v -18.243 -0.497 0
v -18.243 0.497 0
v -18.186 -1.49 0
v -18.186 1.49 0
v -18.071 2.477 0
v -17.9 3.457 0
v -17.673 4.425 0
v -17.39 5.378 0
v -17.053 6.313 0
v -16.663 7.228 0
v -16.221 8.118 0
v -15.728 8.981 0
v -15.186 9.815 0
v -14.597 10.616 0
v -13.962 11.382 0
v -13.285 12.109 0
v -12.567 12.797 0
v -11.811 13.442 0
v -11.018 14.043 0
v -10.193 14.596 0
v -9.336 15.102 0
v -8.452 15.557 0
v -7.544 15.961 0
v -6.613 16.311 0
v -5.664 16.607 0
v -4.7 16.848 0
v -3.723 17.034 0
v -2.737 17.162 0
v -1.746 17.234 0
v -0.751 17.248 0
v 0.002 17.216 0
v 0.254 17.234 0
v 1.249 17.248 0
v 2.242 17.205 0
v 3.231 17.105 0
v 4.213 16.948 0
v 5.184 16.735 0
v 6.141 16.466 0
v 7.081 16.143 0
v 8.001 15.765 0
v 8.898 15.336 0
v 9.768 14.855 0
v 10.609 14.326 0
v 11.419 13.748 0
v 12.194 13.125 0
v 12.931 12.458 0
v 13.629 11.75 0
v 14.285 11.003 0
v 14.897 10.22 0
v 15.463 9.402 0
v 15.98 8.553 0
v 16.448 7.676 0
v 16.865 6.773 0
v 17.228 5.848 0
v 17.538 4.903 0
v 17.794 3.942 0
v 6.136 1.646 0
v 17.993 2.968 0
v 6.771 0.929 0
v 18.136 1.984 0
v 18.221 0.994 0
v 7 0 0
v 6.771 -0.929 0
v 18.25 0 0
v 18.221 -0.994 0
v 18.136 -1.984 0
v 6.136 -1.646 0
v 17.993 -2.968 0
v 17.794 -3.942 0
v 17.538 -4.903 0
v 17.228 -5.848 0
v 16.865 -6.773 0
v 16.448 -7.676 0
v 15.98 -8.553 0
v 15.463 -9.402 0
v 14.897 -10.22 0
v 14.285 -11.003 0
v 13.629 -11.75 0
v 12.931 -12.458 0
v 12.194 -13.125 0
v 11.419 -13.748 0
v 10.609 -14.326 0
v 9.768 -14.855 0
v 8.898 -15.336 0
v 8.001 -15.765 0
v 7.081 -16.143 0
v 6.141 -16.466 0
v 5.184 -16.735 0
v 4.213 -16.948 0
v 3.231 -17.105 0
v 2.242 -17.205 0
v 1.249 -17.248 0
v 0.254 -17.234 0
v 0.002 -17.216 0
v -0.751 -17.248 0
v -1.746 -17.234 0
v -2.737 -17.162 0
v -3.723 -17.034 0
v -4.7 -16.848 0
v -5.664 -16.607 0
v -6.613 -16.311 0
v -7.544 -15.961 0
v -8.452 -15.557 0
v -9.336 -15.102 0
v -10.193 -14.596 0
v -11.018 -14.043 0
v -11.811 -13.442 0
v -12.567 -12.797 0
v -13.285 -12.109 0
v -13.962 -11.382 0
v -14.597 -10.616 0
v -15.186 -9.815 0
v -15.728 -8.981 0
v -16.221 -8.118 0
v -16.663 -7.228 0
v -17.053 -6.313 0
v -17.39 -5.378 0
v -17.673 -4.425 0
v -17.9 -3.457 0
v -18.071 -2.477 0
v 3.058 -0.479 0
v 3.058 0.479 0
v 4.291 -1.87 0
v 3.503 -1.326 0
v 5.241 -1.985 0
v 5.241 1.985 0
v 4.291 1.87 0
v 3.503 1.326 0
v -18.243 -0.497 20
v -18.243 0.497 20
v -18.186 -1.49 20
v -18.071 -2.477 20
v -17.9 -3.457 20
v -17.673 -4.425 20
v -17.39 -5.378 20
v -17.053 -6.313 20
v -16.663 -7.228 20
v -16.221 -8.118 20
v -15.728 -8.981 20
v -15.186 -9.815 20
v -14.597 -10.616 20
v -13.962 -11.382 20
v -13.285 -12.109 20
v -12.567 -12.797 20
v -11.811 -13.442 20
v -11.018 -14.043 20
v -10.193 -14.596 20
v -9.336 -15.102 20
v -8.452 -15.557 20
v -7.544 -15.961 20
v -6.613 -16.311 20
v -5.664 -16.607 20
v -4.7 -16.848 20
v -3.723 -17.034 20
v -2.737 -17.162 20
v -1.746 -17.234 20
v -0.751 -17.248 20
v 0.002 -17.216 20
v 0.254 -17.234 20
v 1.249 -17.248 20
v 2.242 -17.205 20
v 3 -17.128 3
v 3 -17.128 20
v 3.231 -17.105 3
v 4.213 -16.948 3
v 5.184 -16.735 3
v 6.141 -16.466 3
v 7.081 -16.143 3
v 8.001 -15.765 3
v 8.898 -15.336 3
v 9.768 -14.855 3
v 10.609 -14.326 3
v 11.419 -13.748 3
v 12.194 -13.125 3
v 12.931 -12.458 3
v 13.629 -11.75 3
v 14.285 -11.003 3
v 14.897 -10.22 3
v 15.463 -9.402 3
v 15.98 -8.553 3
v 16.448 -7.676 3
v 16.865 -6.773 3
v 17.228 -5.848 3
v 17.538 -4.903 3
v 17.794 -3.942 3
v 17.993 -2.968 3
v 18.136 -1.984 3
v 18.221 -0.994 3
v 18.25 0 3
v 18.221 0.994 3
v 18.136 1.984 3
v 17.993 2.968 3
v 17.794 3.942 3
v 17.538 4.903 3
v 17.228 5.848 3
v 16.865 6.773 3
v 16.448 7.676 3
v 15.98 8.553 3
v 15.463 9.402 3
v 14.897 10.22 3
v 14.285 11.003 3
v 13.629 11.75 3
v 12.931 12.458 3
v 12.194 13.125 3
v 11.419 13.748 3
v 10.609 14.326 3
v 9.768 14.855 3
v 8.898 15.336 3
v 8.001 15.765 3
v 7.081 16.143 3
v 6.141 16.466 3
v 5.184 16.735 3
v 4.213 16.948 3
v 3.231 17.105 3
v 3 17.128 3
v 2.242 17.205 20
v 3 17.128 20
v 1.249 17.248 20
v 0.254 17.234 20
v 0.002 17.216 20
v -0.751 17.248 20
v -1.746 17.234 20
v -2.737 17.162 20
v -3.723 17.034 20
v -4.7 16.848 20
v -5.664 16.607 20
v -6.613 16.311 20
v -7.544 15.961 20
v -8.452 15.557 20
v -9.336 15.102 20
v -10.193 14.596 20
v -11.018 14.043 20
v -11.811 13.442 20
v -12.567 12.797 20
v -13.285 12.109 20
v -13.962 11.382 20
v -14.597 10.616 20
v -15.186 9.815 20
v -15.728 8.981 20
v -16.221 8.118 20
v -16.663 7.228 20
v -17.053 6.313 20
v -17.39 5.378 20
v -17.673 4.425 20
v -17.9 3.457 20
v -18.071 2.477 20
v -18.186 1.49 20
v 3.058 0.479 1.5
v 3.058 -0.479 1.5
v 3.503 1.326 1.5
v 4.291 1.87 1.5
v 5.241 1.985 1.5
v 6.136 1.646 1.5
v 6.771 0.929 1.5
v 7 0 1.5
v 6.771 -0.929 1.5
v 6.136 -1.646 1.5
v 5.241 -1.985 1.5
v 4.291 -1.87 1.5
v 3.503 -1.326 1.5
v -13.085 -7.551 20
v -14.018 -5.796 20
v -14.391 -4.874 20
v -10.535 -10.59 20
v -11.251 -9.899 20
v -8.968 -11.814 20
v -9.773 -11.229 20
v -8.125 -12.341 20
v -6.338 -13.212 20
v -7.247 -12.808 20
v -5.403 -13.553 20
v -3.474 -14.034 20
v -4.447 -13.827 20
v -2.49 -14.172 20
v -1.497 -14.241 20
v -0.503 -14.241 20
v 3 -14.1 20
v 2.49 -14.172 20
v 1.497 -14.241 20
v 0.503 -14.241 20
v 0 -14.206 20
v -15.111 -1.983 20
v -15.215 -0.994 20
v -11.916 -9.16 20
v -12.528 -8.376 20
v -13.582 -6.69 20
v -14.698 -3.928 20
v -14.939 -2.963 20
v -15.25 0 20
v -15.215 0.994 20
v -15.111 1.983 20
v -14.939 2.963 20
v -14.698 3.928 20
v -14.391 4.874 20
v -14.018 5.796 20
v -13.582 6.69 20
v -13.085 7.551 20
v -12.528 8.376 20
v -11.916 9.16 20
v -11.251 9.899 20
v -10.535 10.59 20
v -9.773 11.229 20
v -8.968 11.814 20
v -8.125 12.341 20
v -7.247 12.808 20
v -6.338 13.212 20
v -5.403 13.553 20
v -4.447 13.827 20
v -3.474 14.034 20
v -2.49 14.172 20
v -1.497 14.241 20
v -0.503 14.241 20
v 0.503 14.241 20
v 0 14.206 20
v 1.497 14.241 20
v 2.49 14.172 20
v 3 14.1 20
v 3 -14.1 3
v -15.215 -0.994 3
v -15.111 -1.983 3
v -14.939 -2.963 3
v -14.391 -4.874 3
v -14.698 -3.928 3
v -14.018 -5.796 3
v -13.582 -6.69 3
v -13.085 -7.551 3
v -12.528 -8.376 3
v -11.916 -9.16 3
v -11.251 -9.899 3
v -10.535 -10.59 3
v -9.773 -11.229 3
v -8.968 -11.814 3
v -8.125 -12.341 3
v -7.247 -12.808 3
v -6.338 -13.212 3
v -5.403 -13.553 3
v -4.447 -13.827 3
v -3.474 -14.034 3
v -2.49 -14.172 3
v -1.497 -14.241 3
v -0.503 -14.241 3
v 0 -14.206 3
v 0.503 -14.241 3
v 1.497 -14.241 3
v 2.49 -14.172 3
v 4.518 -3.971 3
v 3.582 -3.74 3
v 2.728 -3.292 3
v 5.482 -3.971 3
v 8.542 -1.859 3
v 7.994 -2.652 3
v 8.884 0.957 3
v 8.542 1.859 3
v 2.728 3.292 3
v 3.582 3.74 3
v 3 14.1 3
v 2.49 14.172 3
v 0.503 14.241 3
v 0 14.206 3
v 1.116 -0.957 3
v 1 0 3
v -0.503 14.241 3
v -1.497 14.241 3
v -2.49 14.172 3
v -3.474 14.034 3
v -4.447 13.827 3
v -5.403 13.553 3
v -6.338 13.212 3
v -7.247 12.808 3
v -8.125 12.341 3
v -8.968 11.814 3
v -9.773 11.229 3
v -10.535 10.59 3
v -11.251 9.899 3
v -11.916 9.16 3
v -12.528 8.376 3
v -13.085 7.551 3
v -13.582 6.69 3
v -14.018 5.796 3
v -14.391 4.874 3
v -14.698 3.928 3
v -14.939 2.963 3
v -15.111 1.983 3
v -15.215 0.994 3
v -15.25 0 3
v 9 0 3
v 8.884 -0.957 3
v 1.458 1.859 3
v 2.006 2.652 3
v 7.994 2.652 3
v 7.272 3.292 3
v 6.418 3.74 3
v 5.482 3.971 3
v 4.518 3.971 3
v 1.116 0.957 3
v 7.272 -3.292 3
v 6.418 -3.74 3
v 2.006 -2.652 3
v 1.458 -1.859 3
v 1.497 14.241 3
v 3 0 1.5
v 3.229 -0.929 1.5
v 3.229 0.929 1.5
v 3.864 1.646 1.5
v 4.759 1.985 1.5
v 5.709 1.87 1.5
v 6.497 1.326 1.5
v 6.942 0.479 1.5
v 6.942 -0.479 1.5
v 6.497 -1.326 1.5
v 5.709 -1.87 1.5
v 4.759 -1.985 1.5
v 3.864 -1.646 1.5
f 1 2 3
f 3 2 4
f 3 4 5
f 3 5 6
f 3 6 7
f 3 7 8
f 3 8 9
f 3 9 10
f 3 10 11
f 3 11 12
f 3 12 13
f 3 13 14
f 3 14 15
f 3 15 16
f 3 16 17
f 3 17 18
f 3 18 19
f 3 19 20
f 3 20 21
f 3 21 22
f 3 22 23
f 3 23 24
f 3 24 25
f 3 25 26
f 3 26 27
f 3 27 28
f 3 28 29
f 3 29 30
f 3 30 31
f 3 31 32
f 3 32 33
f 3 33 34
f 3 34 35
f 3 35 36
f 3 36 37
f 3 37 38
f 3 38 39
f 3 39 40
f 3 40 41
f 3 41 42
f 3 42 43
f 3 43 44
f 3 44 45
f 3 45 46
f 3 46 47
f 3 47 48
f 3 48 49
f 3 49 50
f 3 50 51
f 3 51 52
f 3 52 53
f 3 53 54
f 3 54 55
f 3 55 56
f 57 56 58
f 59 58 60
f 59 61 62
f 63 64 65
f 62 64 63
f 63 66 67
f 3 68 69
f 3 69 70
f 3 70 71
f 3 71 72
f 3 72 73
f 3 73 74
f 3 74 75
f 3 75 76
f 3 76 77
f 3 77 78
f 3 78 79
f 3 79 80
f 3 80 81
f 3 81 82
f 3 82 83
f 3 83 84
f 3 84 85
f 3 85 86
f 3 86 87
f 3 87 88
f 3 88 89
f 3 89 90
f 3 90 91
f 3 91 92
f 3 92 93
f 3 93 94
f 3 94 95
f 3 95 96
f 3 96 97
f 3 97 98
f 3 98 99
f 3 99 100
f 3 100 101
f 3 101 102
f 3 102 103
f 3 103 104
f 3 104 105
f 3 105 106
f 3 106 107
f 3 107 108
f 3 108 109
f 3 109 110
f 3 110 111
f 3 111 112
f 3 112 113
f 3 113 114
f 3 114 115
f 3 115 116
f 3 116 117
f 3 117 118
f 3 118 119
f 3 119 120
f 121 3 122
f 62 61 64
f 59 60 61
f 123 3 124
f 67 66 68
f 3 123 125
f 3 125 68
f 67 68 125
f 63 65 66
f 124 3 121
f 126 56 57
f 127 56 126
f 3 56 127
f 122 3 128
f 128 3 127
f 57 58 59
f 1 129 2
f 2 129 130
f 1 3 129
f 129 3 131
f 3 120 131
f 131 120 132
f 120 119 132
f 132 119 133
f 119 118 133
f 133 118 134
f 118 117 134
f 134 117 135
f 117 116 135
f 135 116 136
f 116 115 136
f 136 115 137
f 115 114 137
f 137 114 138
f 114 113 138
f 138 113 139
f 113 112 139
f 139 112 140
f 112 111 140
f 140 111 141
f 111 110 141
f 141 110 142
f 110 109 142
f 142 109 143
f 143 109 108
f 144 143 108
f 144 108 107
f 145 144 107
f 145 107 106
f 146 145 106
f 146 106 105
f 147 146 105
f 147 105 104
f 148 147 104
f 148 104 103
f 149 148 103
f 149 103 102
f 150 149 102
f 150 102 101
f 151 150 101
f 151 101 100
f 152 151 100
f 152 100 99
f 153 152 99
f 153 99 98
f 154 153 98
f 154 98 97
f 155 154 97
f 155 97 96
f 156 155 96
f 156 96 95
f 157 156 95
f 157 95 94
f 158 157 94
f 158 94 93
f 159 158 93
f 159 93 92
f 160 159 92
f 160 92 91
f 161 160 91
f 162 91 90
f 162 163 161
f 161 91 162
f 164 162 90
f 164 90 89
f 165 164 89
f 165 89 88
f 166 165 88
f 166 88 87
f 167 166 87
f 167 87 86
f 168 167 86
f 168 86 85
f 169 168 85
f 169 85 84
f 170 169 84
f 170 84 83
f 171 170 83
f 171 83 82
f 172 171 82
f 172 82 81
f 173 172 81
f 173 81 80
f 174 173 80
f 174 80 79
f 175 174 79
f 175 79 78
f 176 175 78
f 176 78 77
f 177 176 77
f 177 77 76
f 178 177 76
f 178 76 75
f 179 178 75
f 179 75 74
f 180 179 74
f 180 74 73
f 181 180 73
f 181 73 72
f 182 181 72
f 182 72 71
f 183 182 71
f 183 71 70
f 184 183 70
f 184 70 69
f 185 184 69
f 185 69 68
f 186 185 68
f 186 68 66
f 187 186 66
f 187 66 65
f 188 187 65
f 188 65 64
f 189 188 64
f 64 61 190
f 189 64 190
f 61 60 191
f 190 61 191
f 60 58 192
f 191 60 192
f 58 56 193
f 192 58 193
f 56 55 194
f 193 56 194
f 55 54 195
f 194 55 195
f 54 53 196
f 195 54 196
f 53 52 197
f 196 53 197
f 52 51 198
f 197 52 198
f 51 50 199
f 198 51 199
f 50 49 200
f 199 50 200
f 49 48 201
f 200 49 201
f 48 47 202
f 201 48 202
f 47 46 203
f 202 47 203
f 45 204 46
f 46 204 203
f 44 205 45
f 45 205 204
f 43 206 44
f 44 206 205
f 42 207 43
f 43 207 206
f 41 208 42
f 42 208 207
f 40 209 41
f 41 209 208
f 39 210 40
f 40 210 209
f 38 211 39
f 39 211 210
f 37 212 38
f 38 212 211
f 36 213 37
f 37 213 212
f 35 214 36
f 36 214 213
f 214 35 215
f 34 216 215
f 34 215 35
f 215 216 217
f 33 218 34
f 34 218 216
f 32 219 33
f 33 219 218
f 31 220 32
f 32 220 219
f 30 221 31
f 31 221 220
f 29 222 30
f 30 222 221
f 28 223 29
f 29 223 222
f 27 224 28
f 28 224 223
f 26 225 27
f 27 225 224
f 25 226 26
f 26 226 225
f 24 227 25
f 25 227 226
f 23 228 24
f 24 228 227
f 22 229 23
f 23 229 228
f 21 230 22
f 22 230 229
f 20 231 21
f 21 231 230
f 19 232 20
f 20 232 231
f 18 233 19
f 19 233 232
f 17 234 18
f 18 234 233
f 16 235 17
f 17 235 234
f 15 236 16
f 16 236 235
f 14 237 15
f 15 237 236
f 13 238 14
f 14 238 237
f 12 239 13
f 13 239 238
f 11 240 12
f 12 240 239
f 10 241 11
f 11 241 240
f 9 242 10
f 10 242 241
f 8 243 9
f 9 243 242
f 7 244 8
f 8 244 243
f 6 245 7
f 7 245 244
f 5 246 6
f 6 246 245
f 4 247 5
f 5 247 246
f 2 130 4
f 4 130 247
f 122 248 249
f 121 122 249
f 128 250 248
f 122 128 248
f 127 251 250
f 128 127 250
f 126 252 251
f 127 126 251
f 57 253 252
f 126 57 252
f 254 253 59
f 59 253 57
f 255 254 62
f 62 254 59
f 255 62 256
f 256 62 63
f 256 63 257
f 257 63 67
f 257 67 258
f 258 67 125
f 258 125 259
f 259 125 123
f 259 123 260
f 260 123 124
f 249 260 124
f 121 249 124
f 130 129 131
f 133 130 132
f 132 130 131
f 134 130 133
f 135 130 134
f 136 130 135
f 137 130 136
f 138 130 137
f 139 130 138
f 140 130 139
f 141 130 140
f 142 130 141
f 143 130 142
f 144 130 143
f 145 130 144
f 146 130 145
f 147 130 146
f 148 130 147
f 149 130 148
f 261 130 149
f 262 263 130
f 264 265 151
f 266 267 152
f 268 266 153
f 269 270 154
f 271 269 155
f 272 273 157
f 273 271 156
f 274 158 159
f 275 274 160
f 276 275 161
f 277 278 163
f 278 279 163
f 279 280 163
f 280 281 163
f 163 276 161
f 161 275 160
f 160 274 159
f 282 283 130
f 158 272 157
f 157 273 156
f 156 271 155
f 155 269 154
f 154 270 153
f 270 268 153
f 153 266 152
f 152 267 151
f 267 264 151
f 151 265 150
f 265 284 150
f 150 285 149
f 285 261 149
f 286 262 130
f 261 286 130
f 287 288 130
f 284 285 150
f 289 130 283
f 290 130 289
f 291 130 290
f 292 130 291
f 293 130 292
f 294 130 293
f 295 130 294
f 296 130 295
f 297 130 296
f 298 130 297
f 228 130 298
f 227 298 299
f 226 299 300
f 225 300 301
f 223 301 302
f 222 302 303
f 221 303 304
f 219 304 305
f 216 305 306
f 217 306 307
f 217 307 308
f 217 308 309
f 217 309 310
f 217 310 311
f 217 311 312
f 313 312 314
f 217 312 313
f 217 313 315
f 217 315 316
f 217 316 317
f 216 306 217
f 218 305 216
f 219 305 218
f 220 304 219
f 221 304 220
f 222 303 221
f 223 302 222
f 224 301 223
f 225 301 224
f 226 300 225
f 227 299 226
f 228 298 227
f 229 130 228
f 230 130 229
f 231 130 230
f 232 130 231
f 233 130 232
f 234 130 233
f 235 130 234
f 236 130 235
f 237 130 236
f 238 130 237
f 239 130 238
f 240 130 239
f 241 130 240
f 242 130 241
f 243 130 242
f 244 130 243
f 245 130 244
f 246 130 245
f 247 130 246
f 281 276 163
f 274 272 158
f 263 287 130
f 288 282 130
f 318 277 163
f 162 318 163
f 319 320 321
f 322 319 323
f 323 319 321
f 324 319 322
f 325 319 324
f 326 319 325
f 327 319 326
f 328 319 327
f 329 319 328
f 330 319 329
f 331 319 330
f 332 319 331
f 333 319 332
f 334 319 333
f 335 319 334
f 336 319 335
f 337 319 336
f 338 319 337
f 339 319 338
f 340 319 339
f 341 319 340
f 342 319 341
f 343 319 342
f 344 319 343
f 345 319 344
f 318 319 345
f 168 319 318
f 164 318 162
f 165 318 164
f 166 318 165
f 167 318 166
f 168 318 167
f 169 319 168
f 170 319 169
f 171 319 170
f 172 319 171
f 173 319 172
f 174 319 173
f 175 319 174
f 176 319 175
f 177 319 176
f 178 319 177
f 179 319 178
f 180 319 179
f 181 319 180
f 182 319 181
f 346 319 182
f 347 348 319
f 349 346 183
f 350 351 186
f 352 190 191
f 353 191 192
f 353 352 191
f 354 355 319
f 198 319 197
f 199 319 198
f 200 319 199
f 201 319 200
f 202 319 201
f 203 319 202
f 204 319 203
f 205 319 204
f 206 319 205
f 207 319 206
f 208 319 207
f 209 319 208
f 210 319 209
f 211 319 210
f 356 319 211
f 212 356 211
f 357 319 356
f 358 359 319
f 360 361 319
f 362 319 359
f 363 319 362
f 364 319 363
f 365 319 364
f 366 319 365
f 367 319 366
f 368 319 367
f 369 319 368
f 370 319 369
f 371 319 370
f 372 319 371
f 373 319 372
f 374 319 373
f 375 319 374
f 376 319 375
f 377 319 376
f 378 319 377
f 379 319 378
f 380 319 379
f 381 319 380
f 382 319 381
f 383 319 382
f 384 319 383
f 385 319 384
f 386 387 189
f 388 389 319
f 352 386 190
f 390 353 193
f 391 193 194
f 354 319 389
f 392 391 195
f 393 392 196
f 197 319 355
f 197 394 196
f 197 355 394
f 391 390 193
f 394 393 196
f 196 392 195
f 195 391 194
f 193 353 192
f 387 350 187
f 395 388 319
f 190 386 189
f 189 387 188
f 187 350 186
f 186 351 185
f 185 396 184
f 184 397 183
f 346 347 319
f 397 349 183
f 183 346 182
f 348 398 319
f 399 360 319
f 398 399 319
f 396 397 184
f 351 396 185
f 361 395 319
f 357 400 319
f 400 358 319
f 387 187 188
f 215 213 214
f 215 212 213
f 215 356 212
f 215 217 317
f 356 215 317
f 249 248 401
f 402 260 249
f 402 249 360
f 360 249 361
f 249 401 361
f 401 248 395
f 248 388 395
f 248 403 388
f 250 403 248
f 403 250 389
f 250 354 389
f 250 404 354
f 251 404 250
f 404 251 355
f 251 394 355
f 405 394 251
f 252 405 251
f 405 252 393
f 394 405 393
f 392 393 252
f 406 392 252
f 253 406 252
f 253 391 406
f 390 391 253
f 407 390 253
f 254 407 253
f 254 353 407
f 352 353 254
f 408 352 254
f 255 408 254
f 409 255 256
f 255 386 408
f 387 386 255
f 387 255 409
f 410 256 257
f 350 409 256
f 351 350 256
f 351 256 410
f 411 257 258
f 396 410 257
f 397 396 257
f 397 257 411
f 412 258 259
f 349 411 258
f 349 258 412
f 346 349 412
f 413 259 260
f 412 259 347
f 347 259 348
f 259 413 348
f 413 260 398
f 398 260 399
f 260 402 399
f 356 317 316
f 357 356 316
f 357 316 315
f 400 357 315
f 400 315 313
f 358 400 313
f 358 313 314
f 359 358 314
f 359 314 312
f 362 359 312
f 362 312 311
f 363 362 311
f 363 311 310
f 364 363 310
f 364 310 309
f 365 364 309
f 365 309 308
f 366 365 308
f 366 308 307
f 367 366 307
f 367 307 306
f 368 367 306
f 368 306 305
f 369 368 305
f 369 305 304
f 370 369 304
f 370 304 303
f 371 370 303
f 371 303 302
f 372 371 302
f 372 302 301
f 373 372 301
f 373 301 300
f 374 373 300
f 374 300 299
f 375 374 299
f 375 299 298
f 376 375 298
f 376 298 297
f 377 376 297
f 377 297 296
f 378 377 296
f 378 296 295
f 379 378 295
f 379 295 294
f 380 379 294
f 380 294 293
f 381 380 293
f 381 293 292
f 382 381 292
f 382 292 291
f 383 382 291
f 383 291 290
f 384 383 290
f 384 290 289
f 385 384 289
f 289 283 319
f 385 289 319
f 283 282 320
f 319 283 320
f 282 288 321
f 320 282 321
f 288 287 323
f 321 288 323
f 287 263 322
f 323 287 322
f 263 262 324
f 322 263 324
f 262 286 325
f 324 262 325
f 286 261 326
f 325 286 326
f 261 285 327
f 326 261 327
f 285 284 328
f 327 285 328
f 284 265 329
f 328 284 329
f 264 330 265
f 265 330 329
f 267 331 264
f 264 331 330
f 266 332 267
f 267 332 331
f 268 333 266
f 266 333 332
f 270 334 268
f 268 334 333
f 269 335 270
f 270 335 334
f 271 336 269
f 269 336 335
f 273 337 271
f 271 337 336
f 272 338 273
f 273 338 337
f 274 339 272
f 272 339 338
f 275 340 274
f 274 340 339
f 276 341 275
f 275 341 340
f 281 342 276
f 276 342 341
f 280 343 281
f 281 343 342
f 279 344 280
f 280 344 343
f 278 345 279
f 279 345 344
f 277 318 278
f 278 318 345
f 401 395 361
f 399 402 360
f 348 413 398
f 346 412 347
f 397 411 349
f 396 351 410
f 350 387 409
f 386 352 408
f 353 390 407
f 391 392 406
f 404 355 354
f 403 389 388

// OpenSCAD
// file: util.scad
/* Tête de vis six pans
	d = distance plat à plat opposé. 
 	h = épaisseur de l'écrou 
*/
module sixpans(d, h) {

	for(i=[0:60:120]) 
	rotate(i+30, [0,0,1]) cube([d,d*tan(30),h], true);
}

/* Ovale plat (pour trous coulissants)
	d = diamètre du trou
   l = longueur du trou 
	h = épaisseur du trou
*/
module ovale(d, l, h) {
	translate([-(l-d)/2,0,0]) cylinder(h, d/2, d/2, true);
	translate([(l-d)/2,0,0])	cylinder(h, d/2, d/2, true);
	cube([l-d,d,h],true);
}

/* Trous pour un moteur Nama 17
	h = épaisseur des trous
	j = jeu de glissement
*/
module nema17(h, j) {
	translate([-15.5,-15.5,0]) ovale(4, 4 + j, h);
	translate([ 15.5,-15.5,0]) ovale(4, 4 + j, h);
	translate([-15.5, 15.5,0]) ovale(4, 4 + j, h);
	translate([ 15.5, 15.5,0]) ovale(4, 4 + j, h);
	ovale(24, 24 + j, h);
}

/* Vis six pans
	de = distance plat à plat opposé de la tête
 	he = épaisseur de la tête
	dv = diamètre de la vis
	l = longueur totale de la vis
*/
module vissixpans(de, he, dv, l) {
	translate([0,0,he/2]) sixpans(de, he);
	cylinder(l, dv/2,dv/2);
}

/* vis à tete cylindrique et son écrou six pans
	m = metric 3 = M3, 4 = M4, etc.
	h = longueur totale de la vis
*/
module vis_noyee(m, h) {
	if(m==3) {
		cylinder(2.5, 5.5/2, 5.5/2);
		cylinder(h, 3.5/2, 3.5/2);
		translate([0,0,h-2.5/2]) sixpans(5.8, 2.5);
	}
	else if(m==4) {
		cylinder(3, 4.5/2, 4.5/2);
		cylinder(h, 4.5/2, 4.5/2);
		translate([0,0,h-3.5/2]) sixpans(7.5, 3.5);
	}
	else if(m==5) {
		cylinder(4.5, 10.5/2, 10.5/2);
		cylinder(h, 5.5/2, 5.5/2);
		translate([0,0,h-4.5/2]) sixpans(8.5, 4.5);

	}
}

//vissixpans(6, 3, 3, 20);
// nema17(5, 4);
//ovale(5, 10, 3);
//sixpans(8, 3);
// main file
include <util.scad>;

$fa = 1;
$fs = 1;

h = 20;
e = 6;
ez = 3;
d = 28.5;
ec = 4;

difference() {

	translate([0,0,h/2]) {
		difference() {
			ovale(d+e, d+ec, h);
			translate([0,0,ez/2]) {
				ovale(d, d+ec-e, h-ez);
			}
			translate([ ( (d+e)/2+ec )/2 + 1,0,ez/2]) {
				cube([(d+e)/2,d+e,h-ez], true);
			}
		}
	}
	translate([5,0,0]) {
		cylinder(ez, 2, 2);
		translate([0,0,ez/2]) {
			# cylinder(ez/2, 2, 4);
		}
	}
}
